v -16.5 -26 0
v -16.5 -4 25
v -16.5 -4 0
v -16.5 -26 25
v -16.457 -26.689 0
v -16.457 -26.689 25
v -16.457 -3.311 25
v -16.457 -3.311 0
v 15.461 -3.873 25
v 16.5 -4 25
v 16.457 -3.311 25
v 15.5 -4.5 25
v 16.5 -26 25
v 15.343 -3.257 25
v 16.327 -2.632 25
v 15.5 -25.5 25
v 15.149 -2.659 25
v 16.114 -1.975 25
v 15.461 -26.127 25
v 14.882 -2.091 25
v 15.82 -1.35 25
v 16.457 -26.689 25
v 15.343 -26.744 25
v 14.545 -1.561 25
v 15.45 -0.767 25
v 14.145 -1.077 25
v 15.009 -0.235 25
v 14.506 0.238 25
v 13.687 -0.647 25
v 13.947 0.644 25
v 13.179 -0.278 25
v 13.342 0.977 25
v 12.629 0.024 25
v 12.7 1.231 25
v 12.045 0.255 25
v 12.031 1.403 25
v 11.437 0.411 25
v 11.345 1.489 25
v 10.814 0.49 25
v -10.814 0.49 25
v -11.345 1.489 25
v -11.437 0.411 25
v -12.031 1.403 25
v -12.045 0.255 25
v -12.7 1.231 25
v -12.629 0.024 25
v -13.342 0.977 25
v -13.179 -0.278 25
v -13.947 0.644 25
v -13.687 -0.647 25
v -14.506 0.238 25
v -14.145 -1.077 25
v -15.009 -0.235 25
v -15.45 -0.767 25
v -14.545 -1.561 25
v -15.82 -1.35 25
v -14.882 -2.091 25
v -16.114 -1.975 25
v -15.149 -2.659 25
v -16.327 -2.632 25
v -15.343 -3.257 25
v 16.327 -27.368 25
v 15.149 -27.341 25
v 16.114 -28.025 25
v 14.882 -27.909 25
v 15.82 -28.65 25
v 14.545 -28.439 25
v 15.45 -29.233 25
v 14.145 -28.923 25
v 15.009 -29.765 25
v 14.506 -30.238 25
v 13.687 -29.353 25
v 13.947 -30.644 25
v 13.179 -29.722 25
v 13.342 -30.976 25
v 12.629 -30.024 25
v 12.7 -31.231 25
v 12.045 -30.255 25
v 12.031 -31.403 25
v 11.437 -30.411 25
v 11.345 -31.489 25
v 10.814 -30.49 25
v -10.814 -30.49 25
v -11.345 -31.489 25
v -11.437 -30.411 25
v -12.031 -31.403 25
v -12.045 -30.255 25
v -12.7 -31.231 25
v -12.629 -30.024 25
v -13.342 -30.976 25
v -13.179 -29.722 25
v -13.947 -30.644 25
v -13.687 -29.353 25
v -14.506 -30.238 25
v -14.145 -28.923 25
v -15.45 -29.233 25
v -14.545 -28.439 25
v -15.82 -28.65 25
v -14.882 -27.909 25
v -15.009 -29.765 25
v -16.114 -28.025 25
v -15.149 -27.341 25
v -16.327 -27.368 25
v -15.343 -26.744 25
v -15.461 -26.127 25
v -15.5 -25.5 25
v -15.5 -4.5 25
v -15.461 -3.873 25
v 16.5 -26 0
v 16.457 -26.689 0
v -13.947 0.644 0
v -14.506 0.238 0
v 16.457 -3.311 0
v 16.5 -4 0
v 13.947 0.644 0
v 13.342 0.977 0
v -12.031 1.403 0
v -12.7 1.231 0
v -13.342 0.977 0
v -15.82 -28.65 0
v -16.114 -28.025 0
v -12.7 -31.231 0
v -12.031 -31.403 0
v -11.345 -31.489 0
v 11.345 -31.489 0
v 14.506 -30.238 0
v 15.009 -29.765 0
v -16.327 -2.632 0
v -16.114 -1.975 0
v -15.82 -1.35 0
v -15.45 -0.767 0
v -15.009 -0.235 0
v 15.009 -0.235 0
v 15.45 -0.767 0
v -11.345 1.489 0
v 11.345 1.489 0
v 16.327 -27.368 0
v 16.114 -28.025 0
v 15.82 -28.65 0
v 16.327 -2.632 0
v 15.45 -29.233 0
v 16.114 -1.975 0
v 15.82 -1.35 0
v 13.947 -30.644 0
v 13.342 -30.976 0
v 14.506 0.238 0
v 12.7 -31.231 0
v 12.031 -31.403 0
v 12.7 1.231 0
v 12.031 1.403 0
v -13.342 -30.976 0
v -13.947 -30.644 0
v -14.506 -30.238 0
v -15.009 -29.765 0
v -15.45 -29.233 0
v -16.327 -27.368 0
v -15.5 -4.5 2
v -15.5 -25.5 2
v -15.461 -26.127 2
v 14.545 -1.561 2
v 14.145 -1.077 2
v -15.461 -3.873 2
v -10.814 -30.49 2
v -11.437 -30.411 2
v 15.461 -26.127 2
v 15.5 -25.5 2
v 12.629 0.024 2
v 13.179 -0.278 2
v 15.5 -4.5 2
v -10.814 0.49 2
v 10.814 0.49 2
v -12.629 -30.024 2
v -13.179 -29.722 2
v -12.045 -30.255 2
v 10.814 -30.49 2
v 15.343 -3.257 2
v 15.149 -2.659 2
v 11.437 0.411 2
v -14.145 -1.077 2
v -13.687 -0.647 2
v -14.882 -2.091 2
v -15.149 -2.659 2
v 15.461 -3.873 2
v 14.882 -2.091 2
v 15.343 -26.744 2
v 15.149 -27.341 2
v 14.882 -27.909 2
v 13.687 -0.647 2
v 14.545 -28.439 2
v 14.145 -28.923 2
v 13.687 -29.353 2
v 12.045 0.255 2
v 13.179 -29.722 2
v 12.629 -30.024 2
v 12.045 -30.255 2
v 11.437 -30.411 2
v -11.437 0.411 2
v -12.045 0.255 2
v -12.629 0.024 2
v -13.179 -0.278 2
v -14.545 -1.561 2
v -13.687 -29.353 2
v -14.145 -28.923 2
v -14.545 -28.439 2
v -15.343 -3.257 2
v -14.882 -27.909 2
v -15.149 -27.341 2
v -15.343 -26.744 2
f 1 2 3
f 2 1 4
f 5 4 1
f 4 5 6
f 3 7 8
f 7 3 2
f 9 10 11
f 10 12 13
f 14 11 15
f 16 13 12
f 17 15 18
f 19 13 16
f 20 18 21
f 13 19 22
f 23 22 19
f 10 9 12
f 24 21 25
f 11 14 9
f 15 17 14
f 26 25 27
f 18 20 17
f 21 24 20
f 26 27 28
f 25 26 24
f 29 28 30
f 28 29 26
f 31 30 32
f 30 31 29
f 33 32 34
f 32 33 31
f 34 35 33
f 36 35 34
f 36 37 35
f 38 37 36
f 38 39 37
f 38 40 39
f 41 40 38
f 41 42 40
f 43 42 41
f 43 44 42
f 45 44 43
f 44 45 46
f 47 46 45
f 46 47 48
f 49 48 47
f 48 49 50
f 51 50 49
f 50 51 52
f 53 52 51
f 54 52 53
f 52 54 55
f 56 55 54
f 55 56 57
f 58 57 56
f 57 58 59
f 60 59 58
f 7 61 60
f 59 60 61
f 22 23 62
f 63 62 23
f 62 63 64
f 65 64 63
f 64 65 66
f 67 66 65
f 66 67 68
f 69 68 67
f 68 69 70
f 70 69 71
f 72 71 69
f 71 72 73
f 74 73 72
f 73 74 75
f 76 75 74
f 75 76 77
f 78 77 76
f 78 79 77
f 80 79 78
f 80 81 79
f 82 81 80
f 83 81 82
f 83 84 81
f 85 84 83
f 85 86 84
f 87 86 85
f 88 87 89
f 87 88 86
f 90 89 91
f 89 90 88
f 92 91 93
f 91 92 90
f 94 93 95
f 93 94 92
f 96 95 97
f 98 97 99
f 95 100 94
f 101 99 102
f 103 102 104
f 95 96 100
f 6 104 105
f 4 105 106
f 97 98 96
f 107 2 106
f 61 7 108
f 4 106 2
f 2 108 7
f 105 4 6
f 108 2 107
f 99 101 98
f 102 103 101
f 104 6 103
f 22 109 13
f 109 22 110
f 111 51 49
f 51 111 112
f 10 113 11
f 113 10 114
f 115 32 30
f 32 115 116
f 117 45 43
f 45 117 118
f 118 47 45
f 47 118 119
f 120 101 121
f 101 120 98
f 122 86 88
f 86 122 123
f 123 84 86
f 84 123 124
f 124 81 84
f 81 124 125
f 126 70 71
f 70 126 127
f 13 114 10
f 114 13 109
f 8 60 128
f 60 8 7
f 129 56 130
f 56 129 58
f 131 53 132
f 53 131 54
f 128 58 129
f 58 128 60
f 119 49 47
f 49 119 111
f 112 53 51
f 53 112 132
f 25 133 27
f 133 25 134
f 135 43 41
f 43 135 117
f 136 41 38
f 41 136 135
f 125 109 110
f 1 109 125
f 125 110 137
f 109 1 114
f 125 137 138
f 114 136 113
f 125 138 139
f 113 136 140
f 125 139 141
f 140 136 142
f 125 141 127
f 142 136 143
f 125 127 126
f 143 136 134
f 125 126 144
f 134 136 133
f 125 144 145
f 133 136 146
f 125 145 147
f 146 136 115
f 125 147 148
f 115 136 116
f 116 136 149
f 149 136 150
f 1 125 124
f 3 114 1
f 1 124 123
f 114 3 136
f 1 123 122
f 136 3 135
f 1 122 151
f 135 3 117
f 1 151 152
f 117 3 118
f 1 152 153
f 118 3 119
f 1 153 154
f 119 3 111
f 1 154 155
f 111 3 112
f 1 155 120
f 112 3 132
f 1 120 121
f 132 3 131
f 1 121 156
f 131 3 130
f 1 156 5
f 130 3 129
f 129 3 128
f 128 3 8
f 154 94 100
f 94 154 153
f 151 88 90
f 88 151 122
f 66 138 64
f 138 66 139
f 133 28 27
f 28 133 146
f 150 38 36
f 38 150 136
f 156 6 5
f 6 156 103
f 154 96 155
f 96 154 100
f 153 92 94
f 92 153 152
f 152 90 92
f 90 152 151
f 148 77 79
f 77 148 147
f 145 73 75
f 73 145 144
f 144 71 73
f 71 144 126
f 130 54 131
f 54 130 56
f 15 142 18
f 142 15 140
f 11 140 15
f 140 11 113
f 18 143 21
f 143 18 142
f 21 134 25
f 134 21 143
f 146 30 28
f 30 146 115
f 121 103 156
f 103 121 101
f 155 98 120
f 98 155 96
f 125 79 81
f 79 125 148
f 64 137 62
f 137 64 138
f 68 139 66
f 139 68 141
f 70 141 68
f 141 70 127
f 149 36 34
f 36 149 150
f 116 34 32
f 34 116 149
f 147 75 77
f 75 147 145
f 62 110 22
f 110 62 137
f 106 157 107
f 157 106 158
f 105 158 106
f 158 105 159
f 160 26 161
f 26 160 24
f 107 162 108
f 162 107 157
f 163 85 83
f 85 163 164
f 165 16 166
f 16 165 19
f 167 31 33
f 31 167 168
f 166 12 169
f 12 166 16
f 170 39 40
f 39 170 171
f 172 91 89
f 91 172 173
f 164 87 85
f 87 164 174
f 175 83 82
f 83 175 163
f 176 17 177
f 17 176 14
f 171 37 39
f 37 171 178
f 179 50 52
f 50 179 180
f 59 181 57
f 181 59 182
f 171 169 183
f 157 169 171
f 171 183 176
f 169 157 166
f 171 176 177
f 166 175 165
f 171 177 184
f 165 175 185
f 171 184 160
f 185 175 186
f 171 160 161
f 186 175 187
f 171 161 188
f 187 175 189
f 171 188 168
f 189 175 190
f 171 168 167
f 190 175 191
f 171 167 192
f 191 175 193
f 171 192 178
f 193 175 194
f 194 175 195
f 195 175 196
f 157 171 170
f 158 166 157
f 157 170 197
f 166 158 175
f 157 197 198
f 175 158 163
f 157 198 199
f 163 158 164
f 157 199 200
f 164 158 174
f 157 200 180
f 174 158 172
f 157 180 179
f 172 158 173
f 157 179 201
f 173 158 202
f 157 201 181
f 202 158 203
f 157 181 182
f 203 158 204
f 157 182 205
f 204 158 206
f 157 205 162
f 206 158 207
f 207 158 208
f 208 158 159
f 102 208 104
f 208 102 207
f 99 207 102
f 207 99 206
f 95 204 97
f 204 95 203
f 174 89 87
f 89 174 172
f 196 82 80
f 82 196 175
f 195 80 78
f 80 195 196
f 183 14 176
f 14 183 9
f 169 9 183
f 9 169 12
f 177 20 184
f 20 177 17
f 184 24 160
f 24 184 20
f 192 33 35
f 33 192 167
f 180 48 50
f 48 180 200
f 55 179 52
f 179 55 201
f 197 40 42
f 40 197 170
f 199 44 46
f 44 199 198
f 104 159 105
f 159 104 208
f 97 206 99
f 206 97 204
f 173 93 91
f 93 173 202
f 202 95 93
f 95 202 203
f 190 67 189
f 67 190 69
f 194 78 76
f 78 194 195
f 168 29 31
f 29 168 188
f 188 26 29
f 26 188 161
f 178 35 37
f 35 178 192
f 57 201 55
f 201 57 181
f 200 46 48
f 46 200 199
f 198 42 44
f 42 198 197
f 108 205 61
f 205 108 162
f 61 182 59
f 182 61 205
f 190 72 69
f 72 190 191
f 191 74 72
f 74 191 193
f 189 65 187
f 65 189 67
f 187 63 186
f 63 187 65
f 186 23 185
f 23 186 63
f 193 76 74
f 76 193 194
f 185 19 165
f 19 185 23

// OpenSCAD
$fn = 50;


difference() {
	union() {
		translate(v = [0, -15.0000000000, 0]) {
			hull() {
				translate(v = [-11.0000000000, 11.0000000000, 0]) {
					cylinder(h = 25, r = 5.5000000000);
				}
				translate(v = [11.0000000000, 11.0000000000, 0]) {
					cylinder(h = 25, r = 5.5000000000);
				}
				translate(v = [-11.0000000000, -11.0000000000, 0]) {
					cylinder(h = 25, r = 5.5000000000);
				}
				translate(v = [11.0000000000, -11.0000000000, 0]) {
					cylinder(h = 25, r = 5.5000000000);
				}
			}
		}
	}
	union() {
		translate(v = [0, -15.0000000000, 2]) {
			hull() {
				translate(v = [-10.5000000000, 10.5000000000, 0]) {
					cylinder(h = 50, r = 5);
				}
				translate(v = [10.5000000000, 10.5000000000, 0]) {
					cylinder(h = 50, r = 5);
				}
				translate(v = [-10.5000000000, -10.5000000000, 0]) {
					cylinder(h = 50, r = 5);
				}
				translate(v = [10.5000000000, -10.5000000000, 0]) {
					cylinder(h = 50, r = 5);
				}
			}
		}
	}
}
